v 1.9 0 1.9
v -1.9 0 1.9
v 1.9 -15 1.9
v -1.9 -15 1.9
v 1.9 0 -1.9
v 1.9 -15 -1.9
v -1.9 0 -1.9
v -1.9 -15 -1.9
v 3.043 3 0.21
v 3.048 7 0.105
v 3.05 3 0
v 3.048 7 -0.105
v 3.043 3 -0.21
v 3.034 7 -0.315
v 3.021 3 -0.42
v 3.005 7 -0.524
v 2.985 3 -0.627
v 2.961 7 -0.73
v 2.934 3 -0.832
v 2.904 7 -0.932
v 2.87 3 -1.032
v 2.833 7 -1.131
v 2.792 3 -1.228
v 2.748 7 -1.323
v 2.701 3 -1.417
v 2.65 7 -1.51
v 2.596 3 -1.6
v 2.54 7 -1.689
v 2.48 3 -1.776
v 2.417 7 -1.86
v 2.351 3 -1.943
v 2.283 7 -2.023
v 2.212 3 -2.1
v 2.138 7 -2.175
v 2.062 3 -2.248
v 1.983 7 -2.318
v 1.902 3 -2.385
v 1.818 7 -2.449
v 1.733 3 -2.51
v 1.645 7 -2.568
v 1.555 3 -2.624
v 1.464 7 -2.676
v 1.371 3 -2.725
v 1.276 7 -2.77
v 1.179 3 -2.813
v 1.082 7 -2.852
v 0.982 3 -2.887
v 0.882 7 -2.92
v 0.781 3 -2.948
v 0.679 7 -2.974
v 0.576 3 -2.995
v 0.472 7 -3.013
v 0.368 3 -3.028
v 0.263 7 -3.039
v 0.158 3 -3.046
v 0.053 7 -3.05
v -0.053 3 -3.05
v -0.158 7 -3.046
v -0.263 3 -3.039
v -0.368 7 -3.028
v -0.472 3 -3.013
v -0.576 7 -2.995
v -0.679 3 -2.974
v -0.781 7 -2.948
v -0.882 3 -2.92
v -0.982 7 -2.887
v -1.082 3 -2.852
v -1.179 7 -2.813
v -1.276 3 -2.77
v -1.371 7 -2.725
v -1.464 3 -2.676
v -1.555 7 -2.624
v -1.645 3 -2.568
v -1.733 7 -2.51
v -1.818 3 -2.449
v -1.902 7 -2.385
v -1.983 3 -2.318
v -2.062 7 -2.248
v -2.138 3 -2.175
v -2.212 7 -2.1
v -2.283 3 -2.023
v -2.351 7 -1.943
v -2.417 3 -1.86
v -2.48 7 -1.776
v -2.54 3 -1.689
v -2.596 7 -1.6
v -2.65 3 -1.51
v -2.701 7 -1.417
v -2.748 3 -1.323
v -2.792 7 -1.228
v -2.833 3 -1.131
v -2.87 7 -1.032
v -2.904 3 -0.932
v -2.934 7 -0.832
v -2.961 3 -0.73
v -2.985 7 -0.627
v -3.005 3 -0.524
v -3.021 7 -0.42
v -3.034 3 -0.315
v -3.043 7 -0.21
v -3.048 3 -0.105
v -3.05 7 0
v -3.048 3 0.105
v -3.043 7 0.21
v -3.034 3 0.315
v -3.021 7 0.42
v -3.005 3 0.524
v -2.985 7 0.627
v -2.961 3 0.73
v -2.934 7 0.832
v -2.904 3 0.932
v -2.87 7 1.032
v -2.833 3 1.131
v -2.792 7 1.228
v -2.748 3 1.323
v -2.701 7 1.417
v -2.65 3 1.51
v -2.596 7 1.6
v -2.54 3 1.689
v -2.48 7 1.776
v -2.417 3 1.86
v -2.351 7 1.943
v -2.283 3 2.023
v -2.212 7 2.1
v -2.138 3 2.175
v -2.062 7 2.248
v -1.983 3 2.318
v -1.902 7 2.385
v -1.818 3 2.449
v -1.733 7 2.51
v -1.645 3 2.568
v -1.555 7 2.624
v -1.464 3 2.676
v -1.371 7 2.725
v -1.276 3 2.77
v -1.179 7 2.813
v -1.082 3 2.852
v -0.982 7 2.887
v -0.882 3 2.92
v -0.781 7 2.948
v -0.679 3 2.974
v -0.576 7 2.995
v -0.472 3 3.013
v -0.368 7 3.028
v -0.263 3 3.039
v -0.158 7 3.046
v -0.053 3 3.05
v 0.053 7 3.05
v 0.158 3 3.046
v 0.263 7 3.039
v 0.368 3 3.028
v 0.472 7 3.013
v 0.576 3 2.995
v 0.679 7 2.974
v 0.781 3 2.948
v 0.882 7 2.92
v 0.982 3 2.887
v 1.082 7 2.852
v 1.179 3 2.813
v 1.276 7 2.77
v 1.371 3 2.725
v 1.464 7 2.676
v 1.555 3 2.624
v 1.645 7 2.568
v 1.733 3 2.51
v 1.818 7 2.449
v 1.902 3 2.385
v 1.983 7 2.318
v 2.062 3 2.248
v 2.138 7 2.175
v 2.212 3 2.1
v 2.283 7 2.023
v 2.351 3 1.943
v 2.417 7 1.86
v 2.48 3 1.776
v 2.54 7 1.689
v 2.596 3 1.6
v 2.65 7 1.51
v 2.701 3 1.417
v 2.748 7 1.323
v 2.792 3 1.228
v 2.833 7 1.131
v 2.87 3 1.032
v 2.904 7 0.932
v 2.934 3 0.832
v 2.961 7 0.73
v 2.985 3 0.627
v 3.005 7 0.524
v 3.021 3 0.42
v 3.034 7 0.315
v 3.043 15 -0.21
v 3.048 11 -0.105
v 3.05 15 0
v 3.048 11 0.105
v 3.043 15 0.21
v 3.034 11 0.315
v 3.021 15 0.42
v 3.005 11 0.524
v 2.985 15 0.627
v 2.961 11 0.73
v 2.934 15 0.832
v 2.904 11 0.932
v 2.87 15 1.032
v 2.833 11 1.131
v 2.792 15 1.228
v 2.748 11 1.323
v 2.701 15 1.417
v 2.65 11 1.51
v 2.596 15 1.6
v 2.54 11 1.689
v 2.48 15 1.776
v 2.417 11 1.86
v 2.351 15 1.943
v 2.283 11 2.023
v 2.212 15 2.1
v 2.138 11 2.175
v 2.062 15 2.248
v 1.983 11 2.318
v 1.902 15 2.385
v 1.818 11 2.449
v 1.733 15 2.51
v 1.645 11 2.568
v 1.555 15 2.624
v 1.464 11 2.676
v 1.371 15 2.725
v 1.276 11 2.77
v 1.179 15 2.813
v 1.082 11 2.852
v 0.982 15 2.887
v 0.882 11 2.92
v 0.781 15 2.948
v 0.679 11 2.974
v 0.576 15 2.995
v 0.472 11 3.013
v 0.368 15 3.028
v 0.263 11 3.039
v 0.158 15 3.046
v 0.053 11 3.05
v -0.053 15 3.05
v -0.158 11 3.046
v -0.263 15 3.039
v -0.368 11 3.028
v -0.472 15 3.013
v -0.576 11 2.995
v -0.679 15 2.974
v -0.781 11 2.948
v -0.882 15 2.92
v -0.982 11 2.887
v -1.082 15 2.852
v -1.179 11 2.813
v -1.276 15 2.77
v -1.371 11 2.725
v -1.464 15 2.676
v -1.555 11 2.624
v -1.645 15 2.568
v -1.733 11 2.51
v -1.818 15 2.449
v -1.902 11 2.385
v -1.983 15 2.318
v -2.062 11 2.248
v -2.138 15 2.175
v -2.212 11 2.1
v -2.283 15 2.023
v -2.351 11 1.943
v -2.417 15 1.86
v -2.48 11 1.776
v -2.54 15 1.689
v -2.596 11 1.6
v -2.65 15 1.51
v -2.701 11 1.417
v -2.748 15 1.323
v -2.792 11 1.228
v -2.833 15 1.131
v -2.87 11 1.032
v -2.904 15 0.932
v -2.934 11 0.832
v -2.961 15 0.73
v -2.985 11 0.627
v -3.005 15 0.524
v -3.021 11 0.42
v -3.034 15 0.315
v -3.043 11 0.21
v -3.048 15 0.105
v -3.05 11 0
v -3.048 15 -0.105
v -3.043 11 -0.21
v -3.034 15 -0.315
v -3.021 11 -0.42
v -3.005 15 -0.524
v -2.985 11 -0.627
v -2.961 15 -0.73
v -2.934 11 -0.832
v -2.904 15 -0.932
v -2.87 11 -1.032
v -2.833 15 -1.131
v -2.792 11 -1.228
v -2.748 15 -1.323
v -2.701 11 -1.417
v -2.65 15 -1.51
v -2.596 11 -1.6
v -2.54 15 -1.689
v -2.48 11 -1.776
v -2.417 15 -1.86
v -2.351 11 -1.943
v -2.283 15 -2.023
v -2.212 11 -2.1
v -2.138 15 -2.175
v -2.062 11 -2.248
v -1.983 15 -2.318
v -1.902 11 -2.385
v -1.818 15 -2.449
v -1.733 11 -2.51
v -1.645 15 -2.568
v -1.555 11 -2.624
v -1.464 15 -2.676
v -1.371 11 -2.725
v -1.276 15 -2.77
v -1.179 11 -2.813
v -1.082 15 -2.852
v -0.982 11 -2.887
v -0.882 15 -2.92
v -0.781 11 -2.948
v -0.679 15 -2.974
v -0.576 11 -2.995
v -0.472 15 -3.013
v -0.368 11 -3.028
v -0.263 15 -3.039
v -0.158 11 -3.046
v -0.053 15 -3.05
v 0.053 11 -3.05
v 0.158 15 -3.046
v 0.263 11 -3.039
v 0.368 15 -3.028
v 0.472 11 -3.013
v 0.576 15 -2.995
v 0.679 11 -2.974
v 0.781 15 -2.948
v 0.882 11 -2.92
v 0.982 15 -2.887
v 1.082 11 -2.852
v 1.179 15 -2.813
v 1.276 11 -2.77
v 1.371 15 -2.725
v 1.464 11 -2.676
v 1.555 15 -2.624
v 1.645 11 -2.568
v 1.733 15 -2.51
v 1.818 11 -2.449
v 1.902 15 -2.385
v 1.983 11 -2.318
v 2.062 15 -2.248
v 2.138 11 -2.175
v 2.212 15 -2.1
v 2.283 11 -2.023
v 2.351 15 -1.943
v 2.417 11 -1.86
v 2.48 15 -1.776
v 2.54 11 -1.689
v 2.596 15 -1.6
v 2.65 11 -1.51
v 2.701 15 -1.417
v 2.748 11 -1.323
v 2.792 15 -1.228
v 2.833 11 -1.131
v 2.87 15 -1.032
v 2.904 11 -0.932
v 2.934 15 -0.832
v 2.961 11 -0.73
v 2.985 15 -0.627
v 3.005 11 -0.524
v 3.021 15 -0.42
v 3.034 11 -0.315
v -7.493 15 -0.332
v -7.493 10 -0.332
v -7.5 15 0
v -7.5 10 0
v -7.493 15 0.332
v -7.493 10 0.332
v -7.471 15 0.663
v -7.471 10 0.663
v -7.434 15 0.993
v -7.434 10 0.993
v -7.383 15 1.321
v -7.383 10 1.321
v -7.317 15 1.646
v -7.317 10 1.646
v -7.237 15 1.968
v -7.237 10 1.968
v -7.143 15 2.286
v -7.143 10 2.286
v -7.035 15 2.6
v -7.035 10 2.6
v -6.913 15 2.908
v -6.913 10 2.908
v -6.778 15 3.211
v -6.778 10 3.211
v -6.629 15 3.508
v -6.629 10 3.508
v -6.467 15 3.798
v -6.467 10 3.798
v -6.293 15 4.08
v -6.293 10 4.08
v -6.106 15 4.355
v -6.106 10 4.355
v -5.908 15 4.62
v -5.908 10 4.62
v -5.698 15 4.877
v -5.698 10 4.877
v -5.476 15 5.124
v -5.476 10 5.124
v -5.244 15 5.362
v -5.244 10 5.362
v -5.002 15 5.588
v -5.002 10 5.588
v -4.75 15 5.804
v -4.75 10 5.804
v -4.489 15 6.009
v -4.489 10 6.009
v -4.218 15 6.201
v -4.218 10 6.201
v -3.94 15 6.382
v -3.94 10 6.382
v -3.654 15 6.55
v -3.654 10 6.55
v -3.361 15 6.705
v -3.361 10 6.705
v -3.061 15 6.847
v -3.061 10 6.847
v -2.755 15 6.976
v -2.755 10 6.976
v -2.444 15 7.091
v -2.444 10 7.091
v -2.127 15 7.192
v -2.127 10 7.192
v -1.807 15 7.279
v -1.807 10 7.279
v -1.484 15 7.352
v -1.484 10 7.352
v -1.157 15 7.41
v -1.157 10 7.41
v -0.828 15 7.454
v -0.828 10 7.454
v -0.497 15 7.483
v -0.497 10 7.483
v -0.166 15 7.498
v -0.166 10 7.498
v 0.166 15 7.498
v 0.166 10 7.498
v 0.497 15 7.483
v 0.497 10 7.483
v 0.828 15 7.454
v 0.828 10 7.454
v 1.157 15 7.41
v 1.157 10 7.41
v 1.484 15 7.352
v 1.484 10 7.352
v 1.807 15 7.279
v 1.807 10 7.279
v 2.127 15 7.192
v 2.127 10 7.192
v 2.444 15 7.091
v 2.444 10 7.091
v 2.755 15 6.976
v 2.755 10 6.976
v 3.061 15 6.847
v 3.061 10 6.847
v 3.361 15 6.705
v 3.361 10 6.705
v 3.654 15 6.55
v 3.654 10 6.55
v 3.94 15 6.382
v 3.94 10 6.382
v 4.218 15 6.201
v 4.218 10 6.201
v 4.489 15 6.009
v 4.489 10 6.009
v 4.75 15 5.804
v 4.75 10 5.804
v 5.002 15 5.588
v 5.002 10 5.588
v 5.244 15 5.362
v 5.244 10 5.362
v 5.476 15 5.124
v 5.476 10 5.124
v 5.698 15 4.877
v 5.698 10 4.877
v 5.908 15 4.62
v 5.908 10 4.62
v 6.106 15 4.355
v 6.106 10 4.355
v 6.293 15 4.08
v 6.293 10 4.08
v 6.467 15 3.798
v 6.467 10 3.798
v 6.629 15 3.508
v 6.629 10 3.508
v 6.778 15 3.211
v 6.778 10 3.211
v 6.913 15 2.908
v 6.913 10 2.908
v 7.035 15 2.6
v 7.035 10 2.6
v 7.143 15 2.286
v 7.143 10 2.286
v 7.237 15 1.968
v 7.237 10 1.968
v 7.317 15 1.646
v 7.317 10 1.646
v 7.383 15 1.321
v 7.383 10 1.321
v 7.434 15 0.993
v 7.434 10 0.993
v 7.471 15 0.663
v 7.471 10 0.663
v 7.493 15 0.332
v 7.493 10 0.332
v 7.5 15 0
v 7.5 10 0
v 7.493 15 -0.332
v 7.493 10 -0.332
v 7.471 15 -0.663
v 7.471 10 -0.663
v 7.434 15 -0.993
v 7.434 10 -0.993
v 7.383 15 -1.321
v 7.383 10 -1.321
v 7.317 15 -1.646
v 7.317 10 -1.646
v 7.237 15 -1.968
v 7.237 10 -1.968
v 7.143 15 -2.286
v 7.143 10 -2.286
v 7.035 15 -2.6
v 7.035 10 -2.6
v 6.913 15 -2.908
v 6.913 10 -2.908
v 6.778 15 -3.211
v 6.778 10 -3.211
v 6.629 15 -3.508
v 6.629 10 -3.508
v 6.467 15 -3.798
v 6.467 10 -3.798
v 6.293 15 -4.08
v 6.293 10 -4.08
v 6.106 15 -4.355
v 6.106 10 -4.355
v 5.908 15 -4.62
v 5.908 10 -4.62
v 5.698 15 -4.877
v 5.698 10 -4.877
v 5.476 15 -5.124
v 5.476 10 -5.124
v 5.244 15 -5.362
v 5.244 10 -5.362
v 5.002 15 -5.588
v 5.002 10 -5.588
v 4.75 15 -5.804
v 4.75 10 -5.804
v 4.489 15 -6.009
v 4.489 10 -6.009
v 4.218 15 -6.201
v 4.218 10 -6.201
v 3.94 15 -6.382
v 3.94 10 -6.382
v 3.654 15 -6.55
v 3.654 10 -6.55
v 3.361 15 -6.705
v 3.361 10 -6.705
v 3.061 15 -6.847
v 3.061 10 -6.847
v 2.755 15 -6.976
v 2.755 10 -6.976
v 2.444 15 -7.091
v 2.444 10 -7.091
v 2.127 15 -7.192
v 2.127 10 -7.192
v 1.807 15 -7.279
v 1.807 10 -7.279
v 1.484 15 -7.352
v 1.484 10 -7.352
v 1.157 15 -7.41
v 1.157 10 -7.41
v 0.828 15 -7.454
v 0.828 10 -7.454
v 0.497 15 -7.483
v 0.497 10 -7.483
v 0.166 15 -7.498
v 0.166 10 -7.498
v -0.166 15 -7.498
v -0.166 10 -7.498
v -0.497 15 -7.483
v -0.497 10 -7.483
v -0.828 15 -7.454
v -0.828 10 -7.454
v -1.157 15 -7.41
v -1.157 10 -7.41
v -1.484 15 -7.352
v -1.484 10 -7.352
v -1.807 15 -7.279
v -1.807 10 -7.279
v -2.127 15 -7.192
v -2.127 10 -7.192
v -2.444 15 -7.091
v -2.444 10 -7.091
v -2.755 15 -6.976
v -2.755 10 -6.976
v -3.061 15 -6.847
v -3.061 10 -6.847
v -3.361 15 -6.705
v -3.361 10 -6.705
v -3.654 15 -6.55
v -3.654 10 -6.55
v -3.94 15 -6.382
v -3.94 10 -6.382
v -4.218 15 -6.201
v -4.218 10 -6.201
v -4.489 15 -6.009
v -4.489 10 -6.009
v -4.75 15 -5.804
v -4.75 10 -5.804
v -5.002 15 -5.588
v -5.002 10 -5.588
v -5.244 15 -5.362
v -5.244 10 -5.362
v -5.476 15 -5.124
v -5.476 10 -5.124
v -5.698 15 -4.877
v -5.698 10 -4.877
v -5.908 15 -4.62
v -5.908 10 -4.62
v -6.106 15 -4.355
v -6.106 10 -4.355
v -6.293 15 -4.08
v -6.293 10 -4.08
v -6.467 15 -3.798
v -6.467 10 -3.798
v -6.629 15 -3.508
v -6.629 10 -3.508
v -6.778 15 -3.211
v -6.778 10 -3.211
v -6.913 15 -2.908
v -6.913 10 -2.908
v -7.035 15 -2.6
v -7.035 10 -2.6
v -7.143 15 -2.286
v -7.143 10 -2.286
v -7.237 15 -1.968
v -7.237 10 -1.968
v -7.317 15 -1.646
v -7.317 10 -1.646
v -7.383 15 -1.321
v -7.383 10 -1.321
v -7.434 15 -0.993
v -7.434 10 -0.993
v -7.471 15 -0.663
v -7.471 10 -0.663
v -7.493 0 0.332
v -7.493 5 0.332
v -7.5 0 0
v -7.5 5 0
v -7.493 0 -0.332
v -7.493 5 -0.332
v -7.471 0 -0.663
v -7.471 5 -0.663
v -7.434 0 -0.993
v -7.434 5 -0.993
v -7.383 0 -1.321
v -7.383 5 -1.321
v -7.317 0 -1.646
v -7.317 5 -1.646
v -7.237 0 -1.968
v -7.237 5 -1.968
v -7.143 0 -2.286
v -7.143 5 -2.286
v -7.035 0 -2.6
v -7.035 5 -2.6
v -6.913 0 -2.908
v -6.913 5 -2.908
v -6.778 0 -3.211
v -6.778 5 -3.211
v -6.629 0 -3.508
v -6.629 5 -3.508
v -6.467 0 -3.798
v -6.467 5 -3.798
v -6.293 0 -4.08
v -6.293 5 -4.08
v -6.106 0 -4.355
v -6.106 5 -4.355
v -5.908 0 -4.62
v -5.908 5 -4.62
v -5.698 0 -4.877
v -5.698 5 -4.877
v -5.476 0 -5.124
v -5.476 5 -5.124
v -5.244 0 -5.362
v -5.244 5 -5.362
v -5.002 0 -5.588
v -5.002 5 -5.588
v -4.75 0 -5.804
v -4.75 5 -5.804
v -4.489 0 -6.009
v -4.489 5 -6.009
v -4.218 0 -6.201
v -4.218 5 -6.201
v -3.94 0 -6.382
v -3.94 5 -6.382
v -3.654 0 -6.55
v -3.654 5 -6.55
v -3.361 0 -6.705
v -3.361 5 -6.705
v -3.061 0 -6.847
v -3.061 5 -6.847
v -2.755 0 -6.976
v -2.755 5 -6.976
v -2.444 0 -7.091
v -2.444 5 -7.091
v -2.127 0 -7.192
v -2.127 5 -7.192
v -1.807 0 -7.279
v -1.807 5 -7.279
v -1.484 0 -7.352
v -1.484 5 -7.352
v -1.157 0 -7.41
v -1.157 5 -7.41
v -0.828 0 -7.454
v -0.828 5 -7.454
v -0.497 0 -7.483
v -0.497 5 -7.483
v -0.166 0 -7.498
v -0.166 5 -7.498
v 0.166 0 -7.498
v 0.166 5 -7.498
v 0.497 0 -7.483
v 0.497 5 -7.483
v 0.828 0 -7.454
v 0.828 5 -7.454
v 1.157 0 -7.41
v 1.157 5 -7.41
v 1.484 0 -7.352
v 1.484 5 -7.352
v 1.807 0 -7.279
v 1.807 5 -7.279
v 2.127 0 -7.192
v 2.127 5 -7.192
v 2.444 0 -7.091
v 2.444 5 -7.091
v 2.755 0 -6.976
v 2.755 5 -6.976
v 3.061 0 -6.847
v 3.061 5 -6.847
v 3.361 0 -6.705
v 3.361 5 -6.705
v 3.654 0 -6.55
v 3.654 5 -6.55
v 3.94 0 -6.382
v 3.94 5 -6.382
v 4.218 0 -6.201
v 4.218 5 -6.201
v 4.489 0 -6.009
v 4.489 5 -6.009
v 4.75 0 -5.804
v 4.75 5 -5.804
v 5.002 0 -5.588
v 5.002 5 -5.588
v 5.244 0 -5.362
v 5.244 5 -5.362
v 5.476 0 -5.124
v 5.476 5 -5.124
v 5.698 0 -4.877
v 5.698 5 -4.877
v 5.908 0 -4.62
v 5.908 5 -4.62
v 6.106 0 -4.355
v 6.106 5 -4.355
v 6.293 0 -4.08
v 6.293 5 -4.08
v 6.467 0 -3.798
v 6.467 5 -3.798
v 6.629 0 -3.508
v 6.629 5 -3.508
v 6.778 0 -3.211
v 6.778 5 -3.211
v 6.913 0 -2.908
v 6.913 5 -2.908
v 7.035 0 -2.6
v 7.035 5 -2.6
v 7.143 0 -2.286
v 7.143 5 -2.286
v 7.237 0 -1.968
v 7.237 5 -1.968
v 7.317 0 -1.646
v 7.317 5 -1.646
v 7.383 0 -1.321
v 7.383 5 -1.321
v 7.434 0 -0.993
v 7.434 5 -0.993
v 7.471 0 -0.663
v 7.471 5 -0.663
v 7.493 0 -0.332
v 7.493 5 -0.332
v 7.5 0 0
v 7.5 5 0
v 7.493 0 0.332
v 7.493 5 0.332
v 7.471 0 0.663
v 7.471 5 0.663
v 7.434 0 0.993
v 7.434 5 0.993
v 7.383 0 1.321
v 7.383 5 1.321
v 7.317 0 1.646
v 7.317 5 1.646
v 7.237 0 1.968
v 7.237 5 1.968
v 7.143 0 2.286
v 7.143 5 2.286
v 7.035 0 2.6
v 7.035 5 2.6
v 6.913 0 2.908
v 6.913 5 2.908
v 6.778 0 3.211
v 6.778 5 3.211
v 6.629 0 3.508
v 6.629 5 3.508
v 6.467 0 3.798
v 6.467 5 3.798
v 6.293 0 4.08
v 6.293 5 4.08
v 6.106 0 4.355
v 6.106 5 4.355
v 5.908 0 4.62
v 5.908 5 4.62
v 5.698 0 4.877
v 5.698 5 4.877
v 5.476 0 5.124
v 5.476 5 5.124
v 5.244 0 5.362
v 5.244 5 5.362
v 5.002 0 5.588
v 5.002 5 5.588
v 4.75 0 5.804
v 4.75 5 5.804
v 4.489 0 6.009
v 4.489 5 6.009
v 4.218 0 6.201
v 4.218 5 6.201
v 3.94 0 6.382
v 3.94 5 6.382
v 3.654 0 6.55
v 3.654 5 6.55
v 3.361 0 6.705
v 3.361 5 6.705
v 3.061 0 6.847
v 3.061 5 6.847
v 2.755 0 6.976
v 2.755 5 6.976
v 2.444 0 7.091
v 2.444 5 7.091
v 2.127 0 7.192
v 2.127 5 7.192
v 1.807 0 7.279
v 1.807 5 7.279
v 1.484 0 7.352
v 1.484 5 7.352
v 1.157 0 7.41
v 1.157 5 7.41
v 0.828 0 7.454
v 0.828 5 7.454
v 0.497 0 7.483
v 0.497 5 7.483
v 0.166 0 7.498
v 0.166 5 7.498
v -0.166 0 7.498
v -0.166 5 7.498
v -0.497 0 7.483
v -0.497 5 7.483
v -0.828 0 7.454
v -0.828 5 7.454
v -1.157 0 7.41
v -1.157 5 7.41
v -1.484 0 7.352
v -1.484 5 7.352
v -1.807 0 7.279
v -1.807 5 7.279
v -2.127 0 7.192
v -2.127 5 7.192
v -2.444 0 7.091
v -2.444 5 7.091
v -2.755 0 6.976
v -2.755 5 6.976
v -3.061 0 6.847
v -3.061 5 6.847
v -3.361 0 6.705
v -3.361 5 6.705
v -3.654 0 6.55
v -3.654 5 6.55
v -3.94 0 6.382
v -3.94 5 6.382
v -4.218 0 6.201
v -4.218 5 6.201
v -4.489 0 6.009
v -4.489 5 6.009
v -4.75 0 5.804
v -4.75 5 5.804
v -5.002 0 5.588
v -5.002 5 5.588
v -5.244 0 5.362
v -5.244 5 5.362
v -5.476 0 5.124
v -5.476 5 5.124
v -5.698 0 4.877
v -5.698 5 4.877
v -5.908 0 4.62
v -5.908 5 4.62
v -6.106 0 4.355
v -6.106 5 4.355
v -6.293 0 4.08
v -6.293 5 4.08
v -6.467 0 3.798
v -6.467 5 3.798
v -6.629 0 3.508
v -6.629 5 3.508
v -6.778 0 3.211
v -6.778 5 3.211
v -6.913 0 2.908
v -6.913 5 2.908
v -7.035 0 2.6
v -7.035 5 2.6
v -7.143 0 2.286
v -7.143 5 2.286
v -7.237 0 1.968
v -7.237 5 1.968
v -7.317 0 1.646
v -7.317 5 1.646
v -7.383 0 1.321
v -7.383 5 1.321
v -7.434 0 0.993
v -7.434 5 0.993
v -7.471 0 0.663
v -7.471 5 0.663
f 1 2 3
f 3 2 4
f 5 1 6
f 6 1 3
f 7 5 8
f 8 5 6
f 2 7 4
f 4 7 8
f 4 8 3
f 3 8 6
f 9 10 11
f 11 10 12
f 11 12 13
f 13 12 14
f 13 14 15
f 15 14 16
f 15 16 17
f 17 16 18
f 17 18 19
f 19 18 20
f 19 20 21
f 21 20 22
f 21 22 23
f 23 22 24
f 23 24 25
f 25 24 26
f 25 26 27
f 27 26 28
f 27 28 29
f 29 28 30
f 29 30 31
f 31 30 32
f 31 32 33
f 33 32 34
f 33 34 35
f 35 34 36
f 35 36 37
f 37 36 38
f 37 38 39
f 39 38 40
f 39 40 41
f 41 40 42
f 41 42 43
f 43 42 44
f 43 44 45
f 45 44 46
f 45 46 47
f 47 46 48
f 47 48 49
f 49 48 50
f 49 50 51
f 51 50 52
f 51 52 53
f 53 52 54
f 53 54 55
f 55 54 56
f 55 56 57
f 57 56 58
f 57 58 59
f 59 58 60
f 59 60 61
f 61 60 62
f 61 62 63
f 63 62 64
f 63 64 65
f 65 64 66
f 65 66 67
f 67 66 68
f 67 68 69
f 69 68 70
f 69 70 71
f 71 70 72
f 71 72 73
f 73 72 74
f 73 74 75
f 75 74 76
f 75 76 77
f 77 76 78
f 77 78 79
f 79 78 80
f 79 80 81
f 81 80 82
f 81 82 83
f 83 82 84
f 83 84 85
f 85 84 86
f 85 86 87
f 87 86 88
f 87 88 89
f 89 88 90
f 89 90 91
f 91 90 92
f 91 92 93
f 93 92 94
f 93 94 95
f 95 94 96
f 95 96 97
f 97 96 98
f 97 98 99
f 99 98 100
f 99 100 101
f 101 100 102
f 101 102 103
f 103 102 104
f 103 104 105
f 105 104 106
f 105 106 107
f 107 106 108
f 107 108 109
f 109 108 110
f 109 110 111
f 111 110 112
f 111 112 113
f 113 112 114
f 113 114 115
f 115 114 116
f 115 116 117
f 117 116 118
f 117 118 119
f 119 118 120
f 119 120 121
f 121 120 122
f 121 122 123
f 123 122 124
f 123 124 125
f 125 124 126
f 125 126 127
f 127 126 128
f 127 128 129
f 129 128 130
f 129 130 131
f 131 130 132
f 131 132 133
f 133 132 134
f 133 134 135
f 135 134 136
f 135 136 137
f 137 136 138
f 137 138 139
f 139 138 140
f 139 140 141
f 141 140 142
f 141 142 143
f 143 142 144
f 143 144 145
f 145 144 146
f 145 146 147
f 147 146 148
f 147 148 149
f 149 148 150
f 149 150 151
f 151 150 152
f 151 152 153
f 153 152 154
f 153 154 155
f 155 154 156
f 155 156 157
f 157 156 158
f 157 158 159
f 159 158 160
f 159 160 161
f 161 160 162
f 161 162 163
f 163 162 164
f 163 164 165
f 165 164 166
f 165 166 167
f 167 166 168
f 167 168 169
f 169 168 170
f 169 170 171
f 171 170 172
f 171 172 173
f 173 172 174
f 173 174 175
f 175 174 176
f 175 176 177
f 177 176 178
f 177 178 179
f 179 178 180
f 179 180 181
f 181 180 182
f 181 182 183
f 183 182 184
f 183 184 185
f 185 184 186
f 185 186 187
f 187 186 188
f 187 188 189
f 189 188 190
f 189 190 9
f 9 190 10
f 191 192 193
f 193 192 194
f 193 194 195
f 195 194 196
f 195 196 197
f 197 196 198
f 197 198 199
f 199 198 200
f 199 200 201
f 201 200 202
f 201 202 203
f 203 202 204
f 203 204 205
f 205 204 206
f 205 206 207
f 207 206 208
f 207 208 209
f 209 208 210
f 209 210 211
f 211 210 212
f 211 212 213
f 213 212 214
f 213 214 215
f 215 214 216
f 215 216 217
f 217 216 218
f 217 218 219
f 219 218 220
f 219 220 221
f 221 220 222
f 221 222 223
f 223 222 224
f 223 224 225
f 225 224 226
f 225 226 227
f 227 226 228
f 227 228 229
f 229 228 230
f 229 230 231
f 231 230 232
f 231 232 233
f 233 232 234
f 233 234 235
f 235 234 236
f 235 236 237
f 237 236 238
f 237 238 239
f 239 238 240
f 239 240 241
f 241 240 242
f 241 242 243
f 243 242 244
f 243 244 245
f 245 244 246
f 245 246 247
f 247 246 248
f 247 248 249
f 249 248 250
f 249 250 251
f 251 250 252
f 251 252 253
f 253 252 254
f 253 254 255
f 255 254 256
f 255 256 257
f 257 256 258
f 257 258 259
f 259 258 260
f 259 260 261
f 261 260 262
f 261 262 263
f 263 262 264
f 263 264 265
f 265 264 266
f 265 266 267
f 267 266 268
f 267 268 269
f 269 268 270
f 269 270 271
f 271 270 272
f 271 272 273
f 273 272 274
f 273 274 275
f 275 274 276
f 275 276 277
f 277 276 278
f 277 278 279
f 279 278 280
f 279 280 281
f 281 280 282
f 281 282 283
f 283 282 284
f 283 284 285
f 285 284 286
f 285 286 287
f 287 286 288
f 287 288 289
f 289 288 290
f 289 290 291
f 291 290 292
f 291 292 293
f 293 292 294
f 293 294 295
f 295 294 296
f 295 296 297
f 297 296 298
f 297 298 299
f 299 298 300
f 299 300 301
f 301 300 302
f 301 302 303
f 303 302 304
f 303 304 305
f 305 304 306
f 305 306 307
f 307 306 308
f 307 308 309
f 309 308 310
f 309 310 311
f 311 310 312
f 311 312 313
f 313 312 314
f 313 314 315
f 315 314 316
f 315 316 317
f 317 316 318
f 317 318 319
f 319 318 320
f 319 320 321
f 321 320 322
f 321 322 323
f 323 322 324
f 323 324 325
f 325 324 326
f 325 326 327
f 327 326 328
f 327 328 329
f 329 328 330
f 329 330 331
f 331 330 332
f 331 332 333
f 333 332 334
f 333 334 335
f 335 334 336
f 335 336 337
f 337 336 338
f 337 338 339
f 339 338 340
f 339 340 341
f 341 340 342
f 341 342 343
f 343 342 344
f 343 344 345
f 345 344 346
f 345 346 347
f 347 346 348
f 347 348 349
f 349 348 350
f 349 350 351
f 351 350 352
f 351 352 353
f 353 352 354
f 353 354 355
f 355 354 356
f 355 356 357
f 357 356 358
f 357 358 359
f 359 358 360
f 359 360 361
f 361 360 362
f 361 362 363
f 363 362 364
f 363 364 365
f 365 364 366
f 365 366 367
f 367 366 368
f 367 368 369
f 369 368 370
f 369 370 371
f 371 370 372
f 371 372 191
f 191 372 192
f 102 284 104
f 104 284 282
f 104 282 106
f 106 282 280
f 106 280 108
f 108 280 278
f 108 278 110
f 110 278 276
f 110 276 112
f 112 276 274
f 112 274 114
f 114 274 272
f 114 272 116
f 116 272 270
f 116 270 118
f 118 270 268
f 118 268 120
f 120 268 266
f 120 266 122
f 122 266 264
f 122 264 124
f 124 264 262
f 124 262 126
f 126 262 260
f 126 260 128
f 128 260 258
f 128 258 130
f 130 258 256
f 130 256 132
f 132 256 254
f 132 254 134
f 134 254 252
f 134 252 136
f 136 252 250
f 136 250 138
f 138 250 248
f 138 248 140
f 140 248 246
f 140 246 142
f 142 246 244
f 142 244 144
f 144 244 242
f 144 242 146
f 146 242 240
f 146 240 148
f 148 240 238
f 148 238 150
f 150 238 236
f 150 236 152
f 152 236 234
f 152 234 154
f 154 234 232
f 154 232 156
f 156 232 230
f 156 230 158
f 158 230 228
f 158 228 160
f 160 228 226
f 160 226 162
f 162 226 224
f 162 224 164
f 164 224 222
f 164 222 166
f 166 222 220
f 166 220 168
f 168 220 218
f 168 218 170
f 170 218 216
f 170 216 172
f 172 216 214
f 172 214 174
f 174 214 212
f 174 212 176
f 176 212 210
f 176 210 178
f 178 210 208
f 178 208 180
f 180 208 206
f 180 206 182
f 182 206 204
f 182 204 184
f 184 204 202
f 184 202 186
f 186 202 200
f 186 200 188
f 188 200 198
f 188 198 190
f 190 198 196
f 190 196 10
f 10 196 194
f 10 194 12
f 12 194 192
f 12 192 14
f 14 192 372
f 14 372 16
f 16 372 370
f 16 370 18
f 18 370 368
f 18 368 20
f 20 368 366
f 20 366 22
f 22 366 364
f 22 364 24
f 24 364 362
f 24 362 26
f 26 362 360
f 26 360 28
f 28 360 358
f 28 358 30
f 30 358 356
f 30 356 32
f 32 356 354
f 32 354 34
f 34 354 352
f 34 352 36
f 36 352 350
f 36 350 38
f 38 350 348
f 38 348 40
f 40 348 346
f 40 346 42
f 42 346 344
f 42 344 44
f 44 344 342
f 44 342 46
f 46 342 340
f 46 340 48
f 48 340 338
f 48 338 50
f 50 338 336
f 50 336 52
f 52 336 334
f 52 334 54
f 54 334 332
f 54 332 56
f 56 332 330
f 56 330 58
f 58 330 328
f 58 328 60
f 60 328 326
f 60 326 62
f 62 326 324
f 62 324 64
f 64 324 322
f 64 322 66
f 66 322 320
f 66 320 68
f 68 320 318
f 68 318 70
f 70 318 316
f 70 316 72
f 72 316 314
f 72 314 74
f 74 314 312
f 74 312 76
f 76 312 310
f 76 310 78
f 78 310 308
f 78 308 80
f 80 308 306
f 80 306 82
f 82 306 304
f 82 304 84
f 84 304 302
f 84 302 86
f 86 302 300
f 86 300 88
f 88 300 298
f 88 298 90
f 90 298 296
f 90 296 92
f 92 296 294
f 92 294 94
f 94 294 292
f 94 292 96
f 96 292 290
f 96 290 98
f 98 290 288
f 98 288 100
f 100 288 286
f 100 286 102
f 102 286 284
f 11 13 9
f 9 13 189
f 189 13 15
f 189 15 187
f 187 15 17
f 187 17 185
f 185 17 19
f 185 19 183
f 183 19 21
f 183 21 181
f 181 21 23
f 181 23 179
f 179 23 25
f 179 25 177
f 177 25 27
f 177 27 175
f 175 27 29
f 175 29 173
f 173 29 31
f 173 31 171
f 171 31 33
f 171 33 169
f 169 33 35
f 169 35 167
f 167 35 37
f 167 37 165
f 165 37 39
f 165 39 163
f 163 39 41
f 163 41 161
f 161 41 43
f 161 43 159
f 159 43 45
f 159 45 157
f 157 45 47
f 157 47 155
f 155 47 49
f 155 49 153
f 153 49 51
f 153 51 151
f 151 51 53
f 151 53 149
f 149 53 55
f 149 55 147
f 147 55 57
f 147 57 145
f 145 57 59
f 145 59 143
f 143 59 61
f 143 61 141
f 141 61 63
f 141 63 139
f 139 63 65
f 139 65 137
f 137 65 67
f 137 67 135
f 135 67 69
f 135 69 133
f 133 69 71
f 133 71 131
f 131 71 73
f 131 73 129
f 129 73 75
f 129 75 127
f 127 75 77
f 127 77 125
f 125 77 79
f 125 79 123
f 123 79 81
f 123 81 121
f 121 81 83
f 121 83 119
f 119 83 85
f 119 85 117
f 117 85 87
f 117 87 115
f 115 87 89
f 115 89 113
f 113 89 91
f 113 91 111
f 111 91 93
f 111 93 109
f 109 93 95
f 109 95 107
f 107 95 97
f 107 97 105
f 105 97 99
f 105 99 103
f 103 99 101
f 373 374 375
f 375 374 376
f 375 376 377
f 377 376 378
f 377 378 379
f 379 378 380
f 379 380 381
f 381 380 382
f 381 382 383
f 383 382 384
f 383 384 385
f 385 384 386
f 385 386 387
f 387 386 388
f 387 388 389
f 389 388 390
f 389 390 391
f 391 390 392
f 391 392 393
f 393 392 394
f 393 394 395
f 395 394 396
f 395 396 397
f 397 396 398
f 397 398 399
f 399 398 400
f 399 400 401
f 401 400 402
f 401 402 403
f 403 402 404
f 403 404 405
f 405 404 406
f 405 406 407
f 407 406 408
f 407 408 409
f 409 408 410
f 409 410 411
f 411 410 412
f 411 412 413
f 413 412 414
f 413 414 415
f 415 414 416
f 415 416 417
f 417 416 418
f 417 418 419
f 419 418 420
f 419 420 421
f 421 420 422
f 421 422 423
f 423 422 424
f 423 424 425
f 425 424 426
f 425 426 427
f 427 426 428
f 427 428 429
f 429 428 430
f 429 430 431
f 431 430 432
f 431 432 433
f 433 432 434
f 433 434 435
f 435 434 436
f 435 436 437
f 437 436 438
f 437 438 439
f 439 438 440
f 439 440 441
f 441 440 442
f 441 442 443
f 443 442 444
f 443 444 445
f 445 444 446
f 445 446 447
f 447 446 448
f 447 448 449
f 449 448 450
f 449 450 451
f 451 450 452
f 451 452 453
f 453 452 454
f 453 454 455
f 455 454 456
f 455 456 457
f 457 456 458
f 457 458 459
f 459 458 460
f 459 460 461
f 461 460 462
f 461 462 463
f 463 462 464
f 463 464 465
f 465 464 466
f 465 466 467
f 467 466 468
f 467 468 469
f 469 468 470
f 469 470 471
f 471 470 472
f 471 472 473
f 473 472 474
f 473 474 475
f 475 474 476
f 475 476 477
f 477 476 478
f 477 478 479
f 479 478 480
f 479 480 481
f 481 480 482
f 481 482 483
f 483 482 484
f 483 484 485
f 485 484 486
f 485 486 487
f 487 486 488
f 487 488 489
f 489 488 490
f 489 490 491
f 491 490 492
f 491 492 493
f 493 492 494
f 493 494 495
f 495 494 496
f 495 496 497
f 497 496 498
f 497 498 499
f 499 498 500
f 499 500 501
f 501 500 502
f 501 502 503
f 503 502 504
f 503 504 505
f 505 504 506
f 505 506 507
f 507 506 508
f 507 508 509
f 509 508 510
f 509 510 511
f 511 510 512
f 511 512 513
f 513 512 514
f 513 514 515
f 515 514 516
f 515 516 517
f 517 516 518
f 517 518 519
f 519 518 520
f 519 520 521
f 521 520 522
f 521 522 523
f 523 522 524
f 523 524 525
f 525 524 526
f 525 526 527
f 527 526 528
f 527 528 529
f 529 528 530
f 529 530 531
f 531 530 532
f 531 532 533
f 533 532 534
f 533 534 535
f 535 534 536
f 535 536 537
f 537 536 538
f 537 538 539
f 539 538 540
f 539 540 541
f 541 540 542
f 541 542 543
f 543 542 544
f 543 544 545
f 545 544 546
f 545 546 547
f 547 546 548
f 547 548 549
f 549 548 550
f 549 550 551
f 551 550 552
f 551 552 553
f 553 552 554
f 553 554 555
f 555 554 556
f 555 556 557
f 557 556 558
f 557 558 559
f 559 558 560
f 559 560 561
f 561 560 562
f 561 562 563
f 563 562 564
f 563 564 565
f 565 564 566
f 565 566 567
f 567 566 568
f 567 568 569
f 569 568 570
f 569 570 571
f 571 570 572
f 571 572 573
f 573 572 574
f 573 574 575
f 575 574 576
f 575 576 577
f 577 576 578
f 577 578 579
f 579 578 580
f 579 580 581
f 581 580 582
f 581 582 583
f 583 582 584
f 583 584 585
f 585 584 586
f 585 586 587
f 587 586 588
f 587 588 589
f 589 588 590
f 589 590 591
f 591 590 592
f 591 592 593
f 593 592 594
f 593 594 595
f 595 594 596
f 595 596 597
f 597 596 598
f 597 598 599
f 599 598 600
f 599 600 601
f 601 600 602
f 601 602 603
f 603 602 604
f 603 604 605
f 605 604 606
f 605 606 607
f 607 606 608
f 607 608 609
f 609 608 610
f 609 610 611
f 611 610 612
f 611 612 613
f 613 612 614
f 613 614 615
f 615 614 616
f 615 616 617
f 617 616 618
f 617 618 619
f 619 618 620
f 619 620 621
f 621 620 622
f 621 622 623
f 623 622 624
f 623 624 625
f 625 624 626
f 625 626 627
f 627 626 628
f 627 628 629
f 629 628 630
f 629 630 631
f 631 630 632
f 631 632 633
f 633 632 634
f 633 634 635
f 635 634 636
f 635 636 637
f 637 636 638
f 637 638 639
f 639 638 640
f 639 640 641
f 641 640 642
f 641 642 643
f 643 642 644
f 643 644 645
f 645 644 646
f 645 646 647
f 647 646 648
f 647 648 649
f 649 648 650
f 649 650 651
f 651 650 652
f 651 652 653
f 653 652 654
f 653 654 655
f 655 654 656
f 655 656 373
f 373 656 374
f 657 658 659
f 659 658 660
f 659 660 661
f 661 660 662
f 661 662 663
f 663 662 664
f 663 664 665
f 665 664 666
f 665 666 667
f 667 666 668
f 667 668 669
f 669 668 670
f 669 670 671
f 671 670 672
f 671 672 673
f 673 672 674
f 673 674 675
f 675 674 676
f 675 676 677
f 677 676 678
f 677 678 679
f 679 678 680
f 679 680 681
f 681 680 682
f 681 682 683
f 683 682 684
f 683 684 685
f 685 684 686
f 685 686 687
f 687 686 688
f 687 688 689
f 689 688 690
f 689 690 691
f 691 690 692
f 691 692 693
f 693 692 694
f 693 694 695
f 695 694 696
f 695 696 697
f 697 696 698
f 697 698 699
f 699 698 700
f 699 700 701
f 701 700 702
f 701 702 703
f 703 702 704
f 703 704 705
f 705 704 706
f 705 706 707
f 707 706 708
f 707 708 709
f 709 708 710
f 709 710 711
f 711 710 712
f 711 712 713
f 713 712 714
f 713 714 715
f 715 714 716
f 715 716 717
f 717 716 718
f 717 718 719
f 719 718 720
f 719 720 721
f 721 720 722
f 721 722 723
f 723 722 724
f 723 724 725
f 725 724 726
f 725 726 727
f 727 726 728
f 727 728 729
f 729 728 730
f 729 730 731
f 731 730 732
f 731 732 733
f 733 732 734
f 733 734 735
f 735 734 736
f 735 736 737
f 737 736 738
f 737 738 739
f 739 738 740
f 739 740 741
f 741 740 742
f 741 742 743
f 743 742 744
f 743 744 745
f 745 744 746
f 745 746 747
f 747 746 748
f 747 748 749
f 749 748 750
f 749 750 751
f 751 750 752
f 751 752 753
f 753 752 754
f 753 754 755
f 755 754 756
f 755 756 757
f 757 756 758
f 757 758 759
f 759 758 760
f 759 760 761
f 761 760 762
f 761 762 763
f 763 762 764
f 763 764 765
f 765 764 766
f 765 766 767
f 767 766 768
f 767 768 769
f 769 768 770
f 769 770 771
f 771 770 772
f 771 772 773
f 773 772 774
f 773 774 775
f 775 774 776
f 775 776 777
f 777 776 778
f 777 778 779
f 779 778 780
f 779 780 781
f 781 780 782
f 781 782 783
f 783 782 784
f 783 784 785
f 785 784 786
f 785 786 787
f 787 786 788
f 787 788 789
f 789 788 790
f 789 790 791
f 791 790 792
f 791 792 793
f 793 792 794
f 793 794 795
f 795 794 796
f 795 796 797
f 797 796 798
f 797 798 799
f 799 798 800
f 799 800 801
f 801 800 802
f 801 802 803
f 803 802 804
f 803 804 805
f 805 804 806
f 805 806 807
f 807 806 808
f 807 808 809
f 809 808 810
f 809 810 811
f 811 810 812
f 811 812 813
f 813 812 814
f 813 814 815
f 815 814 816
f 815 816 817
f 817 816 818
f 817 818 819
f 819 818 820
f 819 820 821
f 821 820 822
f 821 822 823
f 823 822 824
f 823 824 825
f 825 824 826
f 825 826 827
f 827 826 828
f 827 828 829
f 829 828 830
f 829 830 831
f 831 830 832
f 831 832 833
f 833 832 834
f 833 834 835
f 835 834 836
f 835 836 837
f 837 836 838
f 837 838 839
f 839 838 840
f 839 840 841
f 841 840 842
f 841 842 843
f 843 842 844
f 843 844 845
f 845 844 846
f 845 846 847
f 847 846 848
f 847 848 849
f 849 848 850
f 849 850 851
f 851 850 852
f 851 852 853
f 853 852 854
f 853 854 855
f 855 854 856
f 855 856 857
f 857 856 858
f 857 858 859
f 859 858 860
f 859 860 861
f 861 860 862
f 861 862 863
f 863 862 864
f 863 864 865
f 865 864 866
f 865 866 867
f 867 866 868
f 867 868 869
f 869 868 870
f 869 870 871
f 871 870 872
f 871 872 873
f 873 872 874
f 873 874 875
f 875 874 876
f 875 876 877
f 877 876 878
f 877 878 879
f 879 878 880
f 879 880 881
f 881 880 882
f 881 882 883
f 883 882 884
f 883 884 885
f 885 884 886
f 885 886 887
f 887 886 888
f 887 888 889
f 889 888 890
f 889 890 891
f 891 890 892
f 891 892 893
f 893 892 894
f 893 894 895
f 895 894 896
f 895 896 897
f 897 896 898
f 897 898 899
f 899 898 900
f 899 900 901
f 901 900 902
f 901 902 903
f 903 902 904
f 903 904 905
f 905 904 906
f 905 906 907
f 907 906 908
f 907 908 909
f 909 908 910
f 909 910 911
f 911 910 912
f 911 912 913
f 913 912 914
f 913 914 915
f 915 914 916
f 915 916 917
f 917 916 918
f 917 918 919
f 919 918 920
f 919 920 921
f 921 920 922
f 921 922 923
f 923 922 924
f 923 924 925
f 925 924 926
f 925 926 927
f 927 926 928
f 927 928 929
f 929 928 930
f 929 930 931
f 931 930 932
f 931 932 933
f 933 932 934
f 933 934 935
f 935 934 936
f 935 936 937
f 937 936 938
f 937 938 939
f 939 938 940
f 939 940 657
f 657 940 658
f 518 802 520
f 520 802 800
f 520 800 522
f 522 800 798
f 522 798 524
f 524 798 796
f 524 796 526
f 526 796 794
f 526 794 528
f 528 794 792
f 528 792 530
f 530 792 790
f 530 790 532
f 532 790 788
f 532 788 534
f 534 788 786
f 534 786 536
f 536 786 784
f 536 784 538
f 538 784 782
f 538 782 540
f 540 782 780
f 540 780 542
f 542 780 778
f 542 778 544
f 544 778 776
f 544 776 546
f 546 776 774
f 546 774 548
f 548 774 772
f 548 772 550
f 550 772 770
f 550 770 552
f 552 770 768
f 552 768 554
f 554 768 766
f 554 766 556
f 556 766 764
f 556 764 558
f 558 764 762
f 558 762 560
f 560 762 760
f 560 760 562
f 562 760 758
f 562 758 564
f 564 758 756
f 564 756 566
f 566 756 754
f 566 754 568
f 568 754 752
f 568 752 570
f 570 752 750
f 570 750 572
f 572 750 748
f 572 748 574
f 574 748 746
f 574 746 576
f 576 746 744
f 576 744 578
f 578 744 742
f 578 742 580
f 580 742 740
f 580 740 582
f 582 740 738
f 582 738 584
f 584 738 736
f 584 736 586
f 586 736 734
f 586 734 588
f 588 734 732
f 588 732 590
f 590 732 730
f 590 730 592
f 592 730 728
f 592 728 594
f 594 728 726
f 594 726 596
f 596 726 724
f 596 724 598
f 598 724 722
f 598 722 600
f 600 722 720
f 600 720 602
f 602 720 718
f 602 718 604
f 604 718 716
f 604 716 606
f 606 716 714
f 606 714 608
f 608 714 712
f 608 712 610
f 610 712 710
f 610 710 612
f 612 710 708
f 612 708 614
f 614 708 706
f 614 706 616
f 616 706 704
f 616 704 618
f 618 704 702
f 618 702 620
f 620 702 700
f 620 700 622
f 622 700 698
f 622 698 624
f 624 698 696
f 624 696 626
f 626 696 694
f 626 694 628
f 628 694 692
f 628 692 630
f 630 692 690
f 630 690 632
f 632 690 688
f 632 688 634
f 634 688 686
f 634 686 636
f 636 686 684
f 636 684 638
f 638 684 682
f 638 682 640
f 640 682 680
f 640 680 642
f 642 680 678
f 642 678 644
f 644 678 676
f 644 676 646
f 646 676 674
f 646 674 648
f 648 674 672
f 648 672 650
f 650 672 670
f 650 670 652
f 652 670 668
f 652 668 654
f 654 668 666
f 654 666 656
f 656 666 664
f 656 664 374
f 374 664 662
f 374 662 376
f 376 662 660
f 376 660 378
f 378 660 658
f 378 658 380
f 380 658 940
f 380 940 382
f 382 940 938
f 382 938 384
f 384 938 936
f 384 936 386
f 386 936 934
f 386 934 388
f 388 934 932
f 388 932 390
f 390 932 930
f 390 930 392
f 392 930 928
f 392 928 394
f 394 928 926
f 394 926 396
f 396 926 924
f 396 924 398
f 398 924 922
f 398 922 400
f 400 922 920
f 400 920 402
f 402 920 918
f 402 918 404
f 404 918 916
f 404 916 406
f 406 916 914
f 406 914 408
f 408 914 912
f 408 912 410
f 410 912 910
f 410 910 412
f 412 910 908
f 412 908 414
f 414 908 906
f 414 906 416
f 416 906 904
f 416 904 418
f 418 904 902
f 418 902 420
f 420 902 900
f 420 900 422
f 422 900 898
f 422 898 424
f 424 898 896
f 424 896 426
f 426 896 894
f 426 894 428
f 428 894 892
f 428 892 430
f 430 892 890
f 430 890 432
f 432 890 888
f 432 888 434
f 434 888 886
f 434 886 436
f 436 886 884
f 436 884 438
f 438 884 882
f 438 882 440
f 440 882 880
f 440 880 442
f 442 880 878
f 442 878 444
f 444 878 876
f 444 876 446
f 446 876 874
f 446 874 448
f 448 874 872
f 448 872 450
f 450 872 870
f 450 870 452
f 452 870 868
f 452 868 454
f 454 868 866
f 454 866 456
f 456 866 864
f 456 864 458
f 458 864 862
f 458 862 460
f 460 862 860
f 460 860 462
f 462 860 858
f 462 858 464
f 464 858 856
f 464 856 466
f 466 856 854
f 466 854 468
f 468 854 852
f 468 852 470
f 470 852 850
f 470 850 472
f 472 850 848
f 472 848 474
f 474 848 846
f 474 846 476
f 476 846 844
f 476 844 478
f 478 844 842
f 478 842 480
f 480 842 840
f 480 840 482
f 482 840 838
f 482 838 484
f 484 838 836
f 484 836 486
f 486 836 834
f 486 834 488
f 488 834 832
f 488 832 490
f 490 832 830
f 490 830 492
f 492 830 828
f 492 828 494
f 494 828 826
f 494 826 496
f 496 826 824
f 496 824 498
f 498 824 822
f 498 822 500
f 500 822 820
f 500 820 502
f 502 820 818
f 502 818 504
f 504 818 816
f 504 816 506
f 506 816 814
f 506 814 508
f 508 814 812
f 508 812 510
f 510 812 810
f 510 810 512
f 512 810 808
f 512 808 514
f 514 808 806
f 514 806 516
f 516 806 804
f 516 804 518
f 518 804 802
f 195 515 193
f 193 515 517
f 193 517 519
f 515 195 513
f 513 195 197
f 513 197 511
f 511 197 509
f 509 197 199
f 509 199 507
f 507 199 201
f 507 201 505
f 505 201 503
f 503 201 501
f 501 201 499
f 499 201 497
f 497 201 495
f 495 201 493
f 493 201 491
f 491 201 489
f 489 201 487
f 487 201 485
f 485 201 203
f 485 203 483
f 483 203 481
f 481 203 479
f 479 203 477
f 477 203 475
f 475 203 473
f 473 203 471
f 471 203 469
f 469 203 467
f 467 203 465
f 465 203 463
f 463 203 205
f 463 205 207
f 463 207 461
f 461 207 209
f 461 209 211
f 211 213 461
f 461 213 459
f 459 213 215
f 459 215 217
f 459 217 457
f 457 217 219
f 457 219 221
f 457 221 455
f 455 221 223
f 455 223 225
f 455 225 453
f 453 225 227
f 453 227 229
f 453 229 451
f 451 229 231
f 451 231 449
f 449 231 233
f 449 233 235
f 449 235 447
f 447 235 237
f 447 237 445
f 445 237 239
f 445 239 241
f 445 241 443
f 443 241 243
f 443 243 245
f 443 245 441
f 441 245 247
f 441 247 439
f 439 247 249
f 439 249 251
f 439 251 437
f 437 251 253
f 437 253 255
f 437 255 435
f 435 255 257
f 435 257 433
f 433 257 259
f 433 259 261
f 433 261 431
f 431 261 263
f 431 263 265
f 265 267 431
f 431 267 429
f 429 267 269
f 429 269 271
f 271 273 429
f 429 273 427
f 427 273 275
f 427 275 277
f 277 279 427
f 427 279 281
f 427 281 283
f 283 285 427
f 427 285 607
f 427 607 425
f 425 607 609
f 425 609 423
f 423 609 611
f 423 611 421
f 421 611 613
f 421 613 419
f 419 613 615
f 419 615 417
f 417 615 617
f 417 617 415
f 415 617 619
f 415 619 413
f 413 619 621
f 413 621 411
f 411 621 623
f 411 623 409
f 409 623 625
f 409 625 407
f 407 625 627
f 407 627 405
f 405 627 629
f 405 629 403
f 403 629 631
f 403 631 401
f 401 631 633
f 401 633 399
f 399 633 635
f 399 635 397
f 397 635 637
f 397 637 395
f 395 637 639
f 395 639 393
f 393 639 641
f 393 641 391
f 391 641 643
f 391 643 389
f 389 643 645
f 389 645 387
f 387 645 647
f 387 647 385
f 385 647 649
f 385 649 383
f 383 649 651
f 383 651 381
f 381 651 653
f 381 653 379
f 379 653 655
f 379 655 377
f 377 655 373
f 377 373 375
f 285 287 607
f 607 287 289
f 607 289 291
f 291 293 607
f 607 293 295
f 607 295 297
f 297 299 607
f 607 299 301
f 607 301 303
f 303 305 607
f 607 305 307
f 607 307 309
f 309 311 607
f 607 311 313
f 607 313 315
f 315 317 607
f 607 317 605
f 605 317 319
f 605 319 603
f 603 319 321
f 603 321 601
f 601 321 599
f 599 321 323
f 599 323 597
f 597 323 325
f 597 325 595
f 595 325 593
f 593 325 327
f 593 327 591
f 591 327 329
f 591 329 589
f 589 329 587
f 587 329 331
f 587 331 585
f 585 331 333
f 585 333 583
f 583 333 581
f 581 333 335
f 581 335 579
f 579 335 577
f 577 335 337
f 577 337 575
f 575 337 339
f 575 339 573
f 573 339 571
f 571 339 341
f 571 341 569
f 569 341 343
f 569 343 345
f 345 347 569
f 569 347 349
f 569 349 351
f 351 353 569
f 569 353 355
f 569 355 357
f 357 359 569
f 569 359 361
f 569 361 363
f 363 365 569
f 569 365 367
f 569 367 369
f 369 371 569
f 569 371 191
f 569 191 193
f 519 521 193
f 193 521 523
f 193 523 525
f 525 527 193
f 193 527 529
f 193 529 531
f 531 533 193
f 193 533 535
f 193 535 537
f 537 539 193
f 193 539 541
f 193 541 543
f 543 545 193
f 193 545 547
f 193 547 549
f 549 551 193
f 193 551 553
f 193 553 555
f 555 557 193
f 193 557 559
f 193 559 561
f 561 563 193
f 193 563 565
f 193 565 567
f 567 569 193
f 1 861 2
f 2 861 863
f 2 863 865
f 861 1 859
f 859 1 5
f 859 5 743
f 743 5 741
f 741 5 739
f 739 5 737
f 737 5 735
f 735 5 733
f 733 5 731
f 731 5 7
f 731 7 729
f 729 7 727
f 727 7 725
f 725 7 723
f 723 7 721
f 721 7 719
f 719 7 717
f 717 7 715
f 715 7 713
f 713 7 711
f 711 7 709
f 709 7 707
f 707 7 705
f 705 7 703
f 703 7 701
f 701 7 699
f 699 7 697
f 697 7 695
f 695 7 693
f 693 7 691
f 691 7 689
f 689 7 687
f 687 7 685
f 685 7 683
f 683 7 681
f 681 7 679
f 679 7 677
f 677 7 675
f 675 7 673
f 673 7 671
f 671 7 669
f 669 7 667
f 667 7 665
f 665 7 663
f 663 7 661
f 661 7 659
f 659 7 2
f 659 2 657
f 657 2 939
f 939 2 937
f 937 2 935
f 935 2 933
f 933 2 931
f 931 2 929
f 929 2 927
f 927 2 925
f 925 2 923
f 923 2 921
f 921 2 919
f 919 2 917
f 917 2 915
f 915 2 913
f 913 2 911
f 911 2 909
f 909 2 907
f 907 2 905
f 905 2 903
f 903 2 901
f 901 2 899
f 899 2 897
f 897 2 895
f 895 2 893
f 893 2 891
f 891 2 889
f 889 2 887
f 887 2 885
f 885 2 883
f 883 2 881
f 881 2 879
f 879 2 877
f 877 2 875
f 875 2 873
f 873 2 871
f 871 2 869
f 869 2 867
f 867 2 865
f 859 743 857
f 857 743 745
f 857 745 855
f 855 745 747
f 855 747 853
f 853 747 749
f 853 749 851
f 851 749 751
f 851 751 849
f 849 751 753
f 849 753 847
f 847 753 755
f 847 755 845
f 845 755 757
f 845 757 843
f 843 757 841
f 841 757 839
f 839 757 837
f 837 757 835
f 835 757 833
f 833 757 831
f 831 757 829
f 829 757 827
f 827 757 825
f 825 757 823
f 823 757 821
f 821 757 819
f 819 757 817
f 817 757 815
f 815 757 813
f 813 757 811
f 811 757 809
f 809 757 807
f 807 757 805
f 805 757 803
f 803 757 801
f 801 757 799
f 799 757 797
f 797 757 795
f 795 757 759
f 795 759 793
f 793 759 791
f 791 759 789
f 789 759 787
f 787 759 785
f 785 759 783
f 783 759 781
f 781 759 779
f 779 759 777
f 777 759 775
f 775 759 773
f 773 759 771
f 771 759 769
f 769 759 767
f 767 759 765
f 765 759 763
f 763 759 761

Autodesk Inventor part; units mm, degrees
ref_plane "YZ Plane" through (0, 0, 0) normal (1, 0, 0) x (0, 1, 0)
ref_plane "XZ Plane" through (0, 0, 0) normal (0, 1, 0) x (-1, 0, 0)
ref_plane "XY Plane" through (0, 0, 0) normal (0, 0, 1) x (1, 0, 0)
sketch "草圖1" plane through (0, 0, 0) normal (0, 1, 0) x (-1, 0, 0)
  circle A0 centre (0, 0) radius 7.5
  dimension "d0" = 15
extrude "擠出1" add sketch "草圖1" along normal blind 15
sketch "草圖2" plane through (0, 15, 0) normal (0, 1, 0) x (1, 0, 0)
  circle A0 centre (0, 0) radius 3.05
  dimension "d3" = 6.1
extrude "擠出2" cut sketch "草圖2" against normal blind 12
sketch "草圖3" plane through (0, 0, 0) normal (0, -1, 0) x (1, 0, 0)
  line L0 (1.9, 1.9) -> (-1.9, 1.9)
  line L1 (-1.9, 1.9) -> (-1.9, -1.9)
  line L2 (-1.9, -1.9) -> (1.9, -1.9)
  line L3 (1.9, -1.9) -> (1.9, 1.9)
  circle A0 centre (0, 0) radius 3.05 projected
  line L4 (1.9, 1.9) -> (-1.9, -1.9) construction
  line L5 (-1.9, 1.9) -> (1.9, -1.9) construction
  dimension "d6" = 3.8
  dimension "d7" = 3.8
extrude "擠出3" add sketch "草圖3" along normal blind 15 contours L3 L2 L1 L0
properties part number "transfer"
